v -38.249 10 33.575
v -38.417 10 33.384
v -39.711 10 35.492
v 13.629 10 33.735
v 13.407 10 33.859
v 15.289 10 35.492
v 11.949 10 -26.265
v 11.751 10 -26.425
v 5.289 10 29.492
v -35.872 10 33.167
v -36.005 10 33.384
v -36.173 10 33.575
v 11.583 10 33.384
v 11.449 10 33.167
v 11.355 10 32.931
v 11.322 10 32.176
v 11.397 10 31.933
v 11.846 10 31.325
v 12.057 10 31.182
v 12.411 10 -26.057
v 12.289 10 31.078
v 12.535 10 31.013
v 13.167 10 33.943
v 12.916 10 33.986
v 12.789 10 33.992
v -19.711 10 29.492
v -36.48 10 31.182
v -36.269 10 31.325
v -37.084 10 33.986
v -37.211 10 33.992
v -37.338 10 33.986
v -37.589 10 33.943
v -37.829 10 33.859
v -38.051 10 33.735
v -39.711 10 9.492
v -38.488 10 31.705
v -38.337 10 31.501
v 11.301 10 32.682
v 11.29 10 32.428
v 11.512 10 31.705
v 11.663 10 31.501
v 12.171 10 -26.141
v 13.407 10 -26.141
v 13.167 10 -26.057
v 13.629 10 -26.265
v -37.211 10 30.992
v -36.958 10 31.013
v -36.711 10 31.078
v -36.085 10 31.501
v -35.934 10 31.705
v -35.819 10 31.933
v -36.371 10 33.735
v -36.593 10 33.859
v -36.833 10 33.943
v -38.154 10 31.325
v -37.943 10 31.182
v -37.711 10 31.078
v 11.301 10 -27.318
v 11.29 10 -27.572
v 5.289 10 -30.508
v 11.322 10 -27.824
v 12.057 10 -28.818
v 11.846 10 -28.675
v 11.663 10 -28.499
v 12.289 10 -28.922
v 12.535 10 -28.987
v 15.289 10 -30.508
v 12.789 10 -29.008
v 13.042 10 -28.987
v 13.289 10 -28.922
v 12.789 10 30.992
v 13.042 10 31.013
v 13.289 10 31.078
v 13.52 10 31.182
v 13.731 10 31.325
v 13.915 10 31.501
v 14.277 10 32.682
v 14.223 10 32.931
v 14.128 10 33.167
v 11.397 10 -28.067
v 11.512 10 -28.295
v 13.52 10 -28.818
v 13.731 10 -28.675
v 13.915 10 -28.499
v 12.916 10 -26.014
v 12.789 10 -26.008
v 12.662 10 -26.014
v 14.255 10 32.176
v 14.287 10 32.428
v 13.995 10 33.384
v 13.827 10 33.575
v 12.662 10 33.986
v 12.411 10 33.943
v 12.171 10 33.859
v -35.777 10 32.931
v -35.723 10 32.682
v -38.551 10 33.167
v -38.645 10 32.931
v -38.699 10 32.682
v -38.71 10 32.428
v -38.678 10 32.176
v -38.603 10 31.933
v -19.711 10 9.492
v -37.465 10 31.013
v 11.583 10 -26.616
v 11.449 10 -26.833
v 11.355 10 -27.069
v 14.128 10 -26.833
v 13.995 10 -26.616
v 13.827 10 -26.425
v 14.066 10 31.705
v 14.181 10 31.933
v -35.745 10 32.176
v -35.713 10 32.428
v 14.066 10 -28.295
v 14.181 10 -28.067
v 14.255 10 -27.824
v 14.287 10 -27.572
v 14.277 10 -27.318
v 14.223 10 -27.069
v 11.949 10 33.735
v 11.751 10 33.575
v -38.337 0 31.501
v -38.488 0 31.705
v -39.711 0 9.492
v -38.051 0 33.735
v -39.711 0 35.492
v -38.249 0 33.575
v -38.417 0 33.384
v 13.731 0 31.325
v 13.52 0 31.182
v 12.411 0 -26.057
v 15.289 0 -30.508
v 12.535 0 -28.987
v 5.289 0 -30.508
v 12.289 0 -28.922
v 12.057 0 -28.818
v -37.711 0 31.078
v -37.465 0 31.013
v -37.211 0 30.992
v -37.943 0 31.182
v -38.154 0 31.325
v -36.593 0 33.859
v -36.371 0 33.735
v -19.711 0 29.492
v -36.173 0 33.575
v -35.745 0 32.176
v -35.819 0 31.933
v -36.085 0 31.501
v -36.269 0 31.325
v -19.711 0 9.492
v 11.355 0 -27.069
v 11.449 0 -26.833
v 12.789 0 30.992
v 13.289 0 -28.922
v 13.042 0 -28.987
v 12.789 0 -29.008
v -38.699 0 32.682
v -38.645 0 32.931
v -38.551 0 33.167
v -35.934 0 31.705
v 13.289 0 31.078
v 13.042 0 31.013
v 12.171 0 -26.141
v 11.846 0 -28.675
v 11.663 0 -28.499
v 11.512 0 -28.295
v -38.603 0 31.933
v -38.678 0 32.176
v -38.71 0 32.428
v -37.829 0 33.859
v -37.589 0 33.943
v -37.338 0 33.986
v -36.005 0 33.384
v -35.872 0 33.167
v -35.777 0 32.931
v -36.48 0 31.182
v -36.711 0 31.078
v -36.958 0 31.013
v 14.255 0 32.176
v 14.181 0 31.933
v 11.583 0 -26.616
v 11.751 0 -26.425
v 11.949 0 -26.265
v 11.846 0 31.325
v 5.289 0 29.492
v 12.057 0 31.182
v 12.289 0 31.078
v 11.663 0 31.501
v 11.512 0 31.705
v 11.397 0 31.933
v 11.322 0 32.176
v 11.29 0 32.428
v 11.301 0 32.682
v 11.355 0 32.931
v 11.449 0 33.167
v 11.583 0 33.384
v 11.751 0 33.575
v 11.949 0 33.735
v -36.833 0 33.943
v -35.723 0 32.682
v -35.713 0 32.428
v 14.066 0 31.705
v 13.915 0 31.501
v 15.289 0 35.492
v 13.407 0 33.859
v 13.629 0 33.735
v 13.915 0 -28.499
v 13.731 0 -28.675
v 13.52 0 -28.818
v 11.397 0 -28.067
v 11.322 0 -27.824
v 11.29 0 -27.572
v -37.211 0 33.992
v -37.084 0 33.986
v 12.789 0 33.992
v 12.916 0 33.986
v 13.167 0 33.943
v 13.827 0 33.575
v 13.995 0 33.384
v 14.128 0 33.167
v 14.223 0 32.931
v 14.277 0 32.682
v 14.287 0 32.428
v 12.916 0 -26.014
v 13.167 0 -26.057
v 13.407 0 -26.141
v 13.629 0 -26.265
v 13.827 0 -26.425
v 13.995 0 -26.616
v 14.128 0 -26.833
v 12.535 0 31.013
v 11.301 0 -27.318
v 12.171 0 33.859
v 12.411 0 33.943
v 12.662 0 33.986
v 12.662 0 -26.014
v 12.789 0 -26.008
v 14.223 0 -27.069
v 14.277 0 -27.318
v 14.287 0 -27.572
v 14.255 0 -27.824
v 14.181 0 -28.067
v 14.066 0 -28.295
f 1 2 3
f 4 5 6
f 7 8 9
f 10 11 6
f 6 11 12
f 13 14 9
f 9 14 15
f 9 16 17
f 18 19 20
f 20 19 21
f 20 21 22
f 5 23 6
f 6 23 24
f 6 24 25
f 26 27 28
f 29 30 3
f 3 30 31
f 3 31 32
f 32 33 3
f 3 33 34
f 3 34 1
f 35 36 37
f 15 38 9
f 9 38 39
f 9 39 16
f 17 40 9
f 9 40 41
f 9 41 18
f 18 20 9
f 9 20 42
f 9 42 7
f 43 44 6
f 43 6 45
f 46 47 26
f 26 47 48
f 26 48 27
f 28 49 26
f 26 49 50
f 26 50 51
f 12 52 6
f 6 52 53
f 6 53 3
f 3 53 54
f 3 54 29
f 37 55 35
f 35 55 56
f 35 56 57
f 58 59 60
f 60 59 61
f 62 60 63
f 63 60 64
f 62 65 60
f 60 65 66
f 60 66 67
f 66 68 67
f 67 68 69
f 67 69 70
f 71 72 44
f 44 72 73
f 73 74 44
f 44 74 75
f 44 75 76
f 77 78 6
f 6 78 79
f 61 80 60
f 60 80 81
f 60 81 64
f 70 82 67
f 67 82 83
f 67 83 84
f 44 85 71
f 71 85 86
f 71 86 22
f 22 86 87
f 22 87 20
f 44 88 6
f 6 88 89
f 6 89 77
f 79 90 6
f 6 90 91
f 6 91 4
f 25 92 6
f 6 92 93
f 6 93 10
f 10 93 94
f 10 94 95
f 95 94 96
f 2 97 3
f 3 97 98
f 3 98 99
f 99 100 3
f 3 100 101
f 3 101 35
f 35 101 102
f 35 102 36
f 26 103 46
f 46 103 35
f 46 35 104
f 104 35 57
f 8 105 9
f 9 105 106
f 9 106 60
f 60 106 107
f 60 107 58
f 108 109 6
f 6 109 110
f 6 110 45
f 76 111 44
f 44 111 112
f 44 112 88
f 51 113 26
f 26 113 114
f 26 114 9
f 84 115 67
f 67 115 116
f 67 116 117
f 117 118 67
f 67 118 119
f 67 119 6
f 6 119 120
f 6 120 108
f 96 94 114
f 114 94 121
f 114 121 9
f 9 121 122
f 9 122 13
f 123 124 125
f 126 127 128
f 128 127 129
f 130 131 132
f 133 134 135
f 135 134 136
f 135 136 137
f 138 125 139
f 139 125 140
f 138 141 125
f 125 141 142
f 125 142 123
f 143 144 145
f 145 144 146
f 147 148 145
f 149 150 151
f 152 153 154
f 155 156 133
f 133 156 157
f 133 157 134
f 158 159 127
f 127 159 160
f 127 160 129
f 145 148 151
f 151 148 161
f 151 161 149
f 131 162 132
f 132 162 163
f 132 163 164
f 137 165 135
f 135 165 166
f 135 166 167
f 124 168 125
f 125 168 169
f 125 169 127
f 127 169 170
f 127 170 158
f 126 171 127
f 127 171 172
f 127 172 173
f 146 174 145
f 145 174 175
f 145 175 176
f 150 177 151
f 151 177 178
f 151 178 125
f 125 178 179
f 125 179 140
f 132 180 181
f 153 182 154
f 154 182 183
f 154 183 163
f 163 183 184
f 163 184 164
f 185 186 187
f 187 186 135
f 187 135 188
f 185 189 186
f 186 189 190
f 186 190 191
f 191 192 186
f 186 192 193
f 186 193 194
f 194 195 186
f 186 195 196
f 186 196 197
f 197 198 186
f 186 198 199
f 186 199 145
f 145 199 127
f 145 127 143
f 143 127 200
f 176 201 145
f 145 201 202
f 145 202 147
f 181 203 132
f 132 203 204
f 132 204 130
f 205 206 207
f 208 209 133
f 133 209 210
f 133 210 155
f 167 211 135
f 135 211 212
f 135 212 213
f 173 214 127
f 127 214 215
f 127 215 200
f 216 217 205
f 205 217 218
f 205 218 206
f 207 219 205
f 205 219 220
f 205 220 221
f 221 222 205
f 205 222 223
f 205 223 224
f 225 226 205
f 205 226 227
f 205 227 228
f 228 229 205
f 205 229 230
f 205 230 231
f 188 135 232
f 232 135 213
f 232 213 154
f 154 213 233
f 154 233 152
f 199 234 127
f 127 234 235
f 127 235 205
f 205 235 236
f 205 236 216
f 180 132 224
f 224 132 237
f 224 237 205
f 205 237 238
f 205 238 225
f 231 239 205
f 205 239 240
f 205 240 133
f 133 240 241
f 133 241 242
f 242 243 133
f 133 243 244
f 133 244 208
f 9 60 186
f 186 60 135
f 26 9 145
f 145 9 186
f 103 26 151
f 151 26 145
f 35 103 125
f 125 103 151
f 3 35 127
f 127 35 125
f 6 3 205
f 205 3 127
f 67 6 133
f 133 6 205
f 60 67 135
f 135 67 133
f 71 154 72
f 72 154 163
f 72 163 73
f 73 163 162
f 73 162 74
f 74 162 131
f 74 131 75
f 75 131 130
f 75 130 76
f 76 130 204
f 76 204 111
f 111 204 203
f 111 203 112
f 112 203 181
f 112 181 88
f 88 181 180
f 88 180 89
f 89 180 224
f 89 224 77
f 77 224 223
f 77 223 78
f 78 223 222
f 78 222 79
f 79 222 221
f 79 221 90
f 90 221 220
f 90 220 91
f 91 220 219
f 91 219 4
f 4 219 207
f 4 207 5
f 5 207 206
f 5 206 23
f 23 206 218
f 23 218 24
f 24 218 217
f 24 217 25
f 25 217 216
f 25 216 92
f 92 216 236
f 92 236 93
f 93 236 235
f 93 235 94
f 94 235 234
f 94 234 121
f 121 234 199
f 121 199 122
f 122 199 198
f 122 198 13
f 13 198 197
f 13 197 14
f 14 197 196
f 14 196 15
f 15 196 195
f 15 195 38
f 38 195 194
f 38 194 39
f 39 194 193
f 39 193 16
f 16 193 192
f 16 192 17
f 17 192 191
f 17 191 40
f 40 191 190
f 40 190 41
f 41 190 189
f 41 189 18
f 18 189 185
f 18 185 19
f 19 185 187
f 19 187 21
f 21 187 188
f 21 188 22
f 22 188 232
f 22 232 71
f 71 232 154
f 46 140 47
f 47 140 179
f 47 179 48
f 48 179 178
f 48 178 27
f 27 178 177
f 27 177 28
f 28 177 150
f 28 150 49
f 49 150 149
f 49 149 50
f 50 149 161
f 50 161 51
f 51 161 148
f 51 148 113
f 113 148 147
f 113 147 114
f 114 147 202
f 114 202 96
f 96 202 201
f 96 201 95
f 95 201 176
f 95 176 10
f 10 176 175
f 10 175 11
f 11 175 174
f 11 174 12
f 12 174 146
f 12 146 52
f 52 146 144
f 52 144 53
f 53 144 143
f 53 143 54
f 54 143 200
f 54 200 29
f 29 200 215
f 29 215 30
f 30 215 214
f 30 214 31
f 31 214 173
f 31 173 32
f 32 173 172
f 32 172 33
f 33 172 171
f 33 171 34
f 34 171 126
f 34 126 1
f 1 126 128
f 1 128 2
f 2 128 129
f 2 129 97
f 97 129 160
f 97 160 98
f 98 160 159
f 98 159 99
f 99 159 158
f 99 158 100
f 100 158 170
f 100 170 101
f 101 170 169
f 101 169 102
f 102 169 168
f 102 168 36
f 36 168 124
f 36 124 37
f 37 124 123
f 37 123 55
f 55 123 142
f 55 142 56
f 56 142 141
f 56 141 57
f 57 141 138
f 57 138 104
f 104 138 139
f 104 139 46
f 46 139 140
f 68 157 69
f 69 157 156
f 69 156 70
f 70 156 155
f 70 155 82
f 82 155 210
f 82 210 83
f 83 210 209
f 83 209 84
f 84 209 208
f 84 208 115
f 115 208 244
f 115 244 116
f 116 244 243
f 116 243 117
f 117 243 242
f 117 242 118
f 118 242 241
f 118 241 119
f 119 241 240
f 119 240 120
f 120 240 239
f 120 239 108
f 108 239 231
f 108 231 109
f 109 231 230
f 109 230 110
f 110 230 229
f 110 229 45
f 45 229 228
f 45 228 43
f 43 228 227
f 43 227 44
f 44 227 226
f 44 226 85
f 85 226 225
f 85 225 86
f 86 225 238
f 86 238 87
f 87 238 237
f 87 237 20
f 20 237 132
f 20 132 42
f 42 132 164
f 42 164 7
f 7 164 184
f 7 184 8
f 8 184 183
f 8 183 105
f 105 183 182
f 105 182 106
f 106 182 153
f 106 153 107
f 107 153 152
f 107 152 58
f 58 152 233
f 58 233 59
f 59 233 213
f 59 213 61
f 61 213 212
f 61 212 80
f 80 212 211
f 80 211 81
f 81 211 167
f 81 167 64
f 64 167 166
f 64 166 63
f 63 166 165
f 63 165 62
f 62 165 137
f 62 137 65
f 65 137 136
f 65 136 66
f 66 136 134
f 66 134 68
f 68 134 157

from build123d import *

# Parameters (mm, degrees)
ESQUISSE1_R        = 1.5
BOSS_EXTRU_1_DEPTH = 10


with BuildPart() as part:
    # Esquisse1 → Boss.-Extru.1 (new body)
    with BuildSketch(Plane(origin=(0, 0, 0), x_dir=(1, 0, 0), z_dir=(0, 1, 0))):
        Polygon((5.288808664, 30.508122744), (15.288808664, 30.508122744), (15.288808664, -35.491877256), (-39.711191336, -35.491877256), (-39.711191336, -9.491877256), (-19.711191336, -9.491877256), (-19.711191336, -29.491877256), (5.288808664, -29.491877256), align=None)
        with Locations(Location((12.788808664, -32.491877256, 0), (0, 0, 270))):
            Circle(ESQUISSE1_R, mode=Mode.SUBTRACT)
        with Locations(Location((-37.211191336, -32.491877256, 0), (0, 0, 270))):
            Circle(ESQUISSE1_R, mode=Mode.SUBTRACT)
        with Locations(Location((12.788808664, 27.508122744, 0), (0, 0, 270))):
            Circle(ESQUISSE1_R, mode=Mode.SUBTRACT)
    extrude(amount=BOSS_EXTRU_1_DEPTH)


solid = part.part
